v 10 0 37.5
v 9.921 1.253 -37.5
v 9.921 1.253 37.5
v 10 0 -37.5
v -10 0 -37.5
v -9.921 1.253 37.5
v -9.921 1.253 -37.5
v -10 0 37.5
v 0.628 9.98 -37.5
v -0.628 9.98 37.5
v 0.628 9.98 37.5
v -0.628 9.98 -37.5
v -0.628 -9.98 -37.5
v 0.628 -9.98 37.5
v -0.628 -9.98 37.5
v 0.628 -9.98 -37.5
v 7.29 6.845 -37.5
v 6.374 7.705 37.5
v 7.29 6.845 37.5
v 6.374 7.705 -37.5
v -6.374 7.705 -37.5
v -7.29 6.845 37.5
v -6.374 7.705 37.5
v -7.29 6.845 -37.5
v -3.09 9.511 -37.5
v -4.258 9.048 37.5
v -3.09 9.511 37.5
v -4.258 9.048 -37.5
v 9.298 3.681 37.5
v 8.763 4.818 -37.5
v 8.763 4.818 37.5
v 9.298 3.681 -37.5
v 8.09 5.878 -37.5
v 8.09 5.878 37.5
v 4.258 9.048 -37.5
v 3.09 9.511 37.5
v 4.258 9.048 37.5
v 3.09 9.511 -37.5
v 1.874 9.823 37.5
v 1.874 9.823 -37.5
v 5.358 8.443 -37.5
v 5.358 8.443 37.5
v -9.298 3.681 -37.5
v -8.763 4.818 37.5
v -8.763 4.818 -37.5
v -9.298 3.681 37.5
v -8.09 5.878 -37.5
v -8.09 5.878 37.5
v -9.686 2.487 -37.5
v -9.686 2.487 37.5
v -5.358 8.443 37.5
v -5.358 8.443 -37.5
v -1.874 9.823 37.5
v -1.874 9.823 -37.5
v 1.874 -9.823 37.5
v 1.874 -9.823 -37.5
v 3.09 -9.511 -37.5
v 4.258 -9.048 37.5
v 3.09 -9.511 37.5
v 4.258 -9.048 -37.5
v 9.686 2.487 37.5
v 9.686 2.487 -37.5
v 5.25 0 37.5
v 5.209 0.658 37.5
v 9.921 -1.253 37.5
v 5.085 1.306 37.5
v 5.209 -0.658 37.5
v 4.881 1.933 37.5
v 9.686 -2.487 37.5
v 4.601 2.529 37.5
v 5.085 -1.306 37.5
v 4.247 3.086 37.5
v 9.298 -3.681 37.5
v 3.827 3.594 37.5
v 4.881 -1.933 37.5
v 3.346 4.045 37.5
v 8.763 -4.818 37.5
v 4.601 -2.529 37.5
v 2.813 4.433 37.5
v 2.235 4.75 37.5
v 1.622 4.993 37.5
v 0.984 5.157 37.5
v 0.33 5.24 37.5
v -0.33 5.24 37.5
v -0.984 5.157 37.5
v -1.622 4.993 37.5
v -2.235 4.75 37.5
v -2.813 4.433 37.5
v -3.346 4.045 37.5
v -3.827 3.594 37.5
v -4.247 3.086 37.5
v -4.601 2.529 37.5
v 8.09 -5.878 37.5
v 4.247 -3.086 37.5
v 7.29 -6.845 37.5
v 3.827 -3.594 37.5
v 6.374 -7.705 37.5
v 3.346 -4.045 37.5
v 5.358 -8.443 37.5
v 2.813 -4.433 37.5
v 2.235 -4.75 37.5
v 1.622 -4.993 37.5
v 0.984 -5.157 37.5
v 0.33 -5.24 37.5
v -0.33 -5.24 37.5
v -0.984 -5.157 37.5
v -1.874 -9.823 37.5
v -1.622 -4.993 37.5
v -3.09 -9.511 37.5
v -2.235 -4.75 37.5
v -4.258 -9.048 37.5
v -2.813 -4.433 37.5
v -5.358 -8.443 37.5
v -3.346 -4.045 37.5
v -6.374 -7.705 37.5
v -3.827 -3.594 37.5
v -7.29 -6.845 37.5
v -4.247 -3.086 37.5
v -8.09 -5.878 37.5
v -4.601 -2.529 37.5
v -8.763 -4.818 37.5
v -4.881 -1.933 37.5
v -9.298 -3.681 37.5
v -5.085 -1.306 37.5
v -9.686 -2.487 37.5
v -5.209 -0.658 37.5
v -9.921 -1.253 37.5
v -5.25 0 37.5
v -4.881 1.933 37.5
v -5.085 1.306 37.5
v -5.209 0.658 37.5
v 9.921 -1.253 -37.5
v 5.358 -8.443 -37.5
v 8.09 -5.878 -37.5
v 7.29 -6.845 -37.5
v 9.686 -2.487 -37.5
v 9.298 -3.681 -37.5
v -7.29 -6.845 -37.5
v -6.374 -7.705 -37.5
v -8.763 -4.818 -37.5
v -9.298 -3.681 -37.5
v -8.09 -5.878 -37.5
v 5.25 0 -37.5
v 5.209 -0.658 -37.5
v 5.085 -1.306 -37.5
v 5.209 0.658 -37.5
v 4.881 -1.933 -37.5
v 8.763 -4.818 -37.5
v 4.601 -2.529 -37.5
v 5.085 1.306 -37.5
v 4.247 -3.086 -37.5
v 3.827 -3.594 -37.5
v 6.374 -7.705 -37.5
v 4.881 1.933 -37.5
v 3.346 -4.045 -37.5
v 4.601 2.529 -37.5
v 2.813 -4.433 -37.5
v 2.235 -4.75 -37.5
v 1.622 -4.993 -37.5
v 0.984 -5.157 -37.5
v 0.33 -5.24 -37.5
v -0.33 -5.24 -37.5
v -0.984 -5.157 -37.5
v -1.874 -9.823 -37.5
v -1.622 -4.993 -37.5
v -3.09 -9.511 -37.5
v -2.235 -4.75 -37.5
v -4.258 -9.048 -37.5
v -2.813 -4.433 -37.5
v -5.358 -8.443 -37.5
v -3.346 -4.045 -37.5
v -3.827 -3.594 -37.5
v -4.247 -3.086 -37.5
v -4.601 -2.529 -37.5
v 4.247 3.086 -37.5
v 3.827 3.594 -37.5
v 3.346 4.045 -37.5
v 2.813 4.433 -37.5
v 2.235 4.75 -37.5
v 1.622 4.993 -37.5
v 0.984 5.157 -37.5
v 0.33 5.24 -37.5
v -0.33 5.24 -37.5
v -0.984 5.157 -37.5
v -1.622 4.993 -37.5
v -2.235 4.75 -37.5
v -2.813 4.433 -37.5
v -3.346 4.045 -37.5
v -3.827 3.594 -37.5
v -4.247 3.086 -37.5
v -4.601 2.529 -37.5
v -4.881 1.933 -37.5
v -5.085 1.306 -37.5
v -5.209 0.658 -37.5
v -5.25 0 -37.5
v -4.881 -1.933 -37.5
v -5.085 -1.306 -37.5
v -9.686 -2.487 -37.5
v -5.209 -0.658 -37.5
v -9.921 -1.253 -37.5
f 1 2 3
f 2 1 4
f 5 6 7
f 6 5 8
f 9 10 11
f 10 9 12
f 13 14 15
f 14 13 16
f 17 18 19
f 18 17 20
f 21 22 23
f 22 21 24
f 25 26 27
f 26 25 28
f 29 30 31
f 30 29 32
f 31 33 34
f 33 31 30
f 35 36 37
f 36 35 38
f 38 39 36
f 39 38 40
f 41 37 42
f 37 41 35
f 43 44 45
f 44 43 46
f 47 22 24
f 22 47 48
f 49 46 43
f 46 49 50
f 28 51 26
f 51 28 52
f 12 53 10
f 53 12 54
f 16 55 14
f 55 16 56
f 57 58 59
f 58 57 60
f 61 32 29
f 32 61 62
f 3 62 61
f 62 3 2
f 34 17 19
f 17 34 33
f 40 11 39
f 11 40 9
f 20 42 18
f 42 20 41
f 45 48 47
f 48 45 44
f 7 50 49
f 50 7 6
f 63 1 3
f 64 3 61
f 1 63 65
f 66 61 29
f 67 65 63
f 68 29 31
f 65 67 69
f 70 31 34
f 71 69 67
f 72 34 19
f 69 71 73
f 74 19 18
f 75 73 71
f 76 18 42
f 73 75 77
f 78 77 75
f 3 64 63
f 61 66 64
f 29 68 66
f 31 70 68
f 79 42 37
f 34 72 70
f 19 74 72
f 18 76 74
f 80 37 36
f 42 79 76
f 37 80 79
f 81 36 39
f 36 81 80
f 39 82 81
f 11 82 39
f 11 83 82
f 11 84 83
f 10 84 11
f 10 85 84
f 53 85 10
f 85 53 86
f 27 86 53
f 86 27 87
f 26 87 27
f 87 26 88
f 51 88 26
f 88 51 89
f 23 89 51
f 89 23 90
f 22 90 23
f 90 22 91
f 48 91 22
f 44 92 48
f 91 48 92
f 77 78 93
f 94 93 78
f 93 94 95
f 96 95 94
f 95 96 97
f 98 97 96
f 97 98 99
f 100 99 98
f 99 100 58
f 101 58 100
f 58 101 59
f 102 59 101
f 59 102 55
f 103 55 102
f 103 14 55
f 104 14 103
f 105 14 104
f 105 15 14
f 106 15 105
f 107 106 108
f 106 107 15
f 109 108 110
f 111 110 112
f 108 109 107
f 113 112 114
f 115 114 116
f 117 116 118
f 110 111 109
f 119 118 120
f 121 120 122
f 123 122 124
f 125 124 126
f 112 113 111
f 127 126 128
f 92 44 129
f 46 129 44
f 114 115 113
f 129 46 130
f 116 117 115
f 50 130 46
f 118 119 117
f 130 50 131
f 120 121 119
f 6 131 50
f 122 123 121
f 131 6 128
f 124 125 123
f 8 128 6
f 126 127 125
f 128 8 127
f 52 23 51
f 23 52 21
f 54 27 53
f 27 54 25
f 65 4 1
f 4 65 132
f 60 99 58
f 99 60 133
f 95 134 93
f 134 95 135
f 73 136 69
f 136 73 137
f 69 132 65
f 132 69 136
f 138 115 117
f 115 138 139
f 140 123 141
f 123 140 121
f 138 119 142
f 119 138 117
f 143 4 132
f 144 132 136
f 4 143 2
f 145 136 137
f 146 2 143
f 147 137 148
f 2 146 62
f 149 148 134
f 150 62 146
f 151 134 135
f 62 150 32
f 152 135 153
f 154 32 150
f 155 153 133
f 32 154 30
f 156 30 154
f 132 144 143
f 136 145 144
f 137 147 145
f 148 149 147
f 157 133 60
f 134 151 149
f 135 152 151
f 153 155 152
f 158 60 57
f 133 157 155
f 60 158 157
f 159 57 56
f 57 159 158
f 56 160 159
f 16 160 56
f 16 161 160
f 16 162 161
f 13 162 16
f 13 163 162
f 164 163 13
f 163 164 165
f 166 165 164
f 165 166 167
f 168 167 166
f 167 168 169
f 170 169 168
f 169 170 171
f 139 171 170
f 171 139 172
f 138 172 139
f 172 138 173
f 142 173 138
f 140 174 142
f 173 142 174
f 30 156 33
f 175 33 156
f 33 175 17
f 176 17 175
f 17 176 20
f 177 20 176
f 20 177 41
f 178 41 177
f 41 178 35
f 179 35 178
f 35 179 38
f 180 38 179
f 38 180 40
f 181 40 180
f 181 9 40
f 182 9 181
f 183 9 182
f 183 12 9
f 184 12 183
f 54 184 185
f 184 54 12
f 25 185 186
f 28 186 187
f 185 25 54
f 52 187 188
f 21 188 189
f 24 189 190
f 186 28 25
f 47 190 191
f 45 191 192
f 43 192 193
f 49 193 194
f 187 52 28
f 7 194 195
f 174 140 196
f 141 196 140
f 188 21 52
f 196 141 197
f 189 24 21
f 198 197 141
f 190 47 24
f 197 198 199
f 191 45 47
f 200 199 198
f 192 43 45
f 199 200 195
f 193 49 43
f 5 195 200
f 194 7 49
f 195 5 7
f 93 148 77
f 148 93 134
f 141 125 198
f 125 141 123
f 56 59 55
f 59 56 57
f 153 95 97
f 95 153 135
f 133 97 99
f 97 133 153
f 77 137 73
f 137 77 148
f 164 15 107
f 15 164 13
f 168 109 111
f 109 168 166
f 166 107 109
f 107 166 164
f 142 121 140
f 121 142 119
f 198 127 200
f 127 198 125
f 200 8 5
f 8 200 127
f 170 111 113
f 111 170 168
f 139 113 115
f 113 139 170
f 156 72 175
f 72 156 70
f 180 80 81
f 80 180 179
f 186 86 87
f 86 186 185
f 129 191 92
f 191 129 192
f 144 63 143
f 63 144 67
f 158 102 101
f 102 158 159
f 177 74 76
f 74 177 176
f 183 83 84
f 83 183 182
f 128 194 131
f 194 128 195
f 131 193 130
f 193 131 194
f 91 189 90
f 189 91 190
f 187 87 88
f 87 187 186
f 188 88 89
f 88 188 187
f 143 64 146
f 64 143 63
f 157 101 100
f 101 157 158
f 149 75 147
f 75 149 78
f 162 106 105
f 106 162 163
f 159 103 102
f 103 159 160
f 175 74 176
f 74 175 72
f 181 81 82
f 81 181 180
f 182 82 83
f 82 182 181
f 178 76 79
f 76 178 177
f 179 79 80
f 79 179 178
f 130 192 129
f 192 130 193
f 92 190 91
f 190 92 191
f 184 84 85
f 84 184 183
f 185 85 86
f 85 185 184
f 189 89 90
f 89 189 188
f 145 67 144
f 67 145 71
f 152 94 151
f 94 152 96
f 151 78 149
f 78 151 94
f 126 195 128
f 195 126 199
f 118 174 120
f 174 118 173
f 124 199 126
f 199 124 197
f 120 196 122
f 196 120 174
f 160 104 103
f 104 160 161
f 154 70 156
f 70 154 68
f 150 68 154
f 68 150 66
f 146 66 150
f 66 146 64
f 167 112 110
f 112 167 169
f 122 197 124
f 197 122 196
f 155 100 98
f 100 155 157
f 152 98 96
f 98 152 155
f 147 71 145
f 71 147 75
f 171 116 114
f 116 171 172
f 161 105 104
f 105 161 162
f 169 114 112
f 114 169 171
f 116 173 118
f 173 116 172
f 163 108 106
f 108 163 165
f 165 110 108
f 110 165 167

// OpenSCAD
$fn = 50;


difference() {
	union() {
		translate(v = [0, 0, -37.5000000000]) {
			cylinder(h = 75, r = 10.0000000000);
		}
	}
	union() {
		translate(v = [0, 0, -100.0000000000]) {
			cylinder(h = 200, r = 5.2500000000);
		}
	}
}
